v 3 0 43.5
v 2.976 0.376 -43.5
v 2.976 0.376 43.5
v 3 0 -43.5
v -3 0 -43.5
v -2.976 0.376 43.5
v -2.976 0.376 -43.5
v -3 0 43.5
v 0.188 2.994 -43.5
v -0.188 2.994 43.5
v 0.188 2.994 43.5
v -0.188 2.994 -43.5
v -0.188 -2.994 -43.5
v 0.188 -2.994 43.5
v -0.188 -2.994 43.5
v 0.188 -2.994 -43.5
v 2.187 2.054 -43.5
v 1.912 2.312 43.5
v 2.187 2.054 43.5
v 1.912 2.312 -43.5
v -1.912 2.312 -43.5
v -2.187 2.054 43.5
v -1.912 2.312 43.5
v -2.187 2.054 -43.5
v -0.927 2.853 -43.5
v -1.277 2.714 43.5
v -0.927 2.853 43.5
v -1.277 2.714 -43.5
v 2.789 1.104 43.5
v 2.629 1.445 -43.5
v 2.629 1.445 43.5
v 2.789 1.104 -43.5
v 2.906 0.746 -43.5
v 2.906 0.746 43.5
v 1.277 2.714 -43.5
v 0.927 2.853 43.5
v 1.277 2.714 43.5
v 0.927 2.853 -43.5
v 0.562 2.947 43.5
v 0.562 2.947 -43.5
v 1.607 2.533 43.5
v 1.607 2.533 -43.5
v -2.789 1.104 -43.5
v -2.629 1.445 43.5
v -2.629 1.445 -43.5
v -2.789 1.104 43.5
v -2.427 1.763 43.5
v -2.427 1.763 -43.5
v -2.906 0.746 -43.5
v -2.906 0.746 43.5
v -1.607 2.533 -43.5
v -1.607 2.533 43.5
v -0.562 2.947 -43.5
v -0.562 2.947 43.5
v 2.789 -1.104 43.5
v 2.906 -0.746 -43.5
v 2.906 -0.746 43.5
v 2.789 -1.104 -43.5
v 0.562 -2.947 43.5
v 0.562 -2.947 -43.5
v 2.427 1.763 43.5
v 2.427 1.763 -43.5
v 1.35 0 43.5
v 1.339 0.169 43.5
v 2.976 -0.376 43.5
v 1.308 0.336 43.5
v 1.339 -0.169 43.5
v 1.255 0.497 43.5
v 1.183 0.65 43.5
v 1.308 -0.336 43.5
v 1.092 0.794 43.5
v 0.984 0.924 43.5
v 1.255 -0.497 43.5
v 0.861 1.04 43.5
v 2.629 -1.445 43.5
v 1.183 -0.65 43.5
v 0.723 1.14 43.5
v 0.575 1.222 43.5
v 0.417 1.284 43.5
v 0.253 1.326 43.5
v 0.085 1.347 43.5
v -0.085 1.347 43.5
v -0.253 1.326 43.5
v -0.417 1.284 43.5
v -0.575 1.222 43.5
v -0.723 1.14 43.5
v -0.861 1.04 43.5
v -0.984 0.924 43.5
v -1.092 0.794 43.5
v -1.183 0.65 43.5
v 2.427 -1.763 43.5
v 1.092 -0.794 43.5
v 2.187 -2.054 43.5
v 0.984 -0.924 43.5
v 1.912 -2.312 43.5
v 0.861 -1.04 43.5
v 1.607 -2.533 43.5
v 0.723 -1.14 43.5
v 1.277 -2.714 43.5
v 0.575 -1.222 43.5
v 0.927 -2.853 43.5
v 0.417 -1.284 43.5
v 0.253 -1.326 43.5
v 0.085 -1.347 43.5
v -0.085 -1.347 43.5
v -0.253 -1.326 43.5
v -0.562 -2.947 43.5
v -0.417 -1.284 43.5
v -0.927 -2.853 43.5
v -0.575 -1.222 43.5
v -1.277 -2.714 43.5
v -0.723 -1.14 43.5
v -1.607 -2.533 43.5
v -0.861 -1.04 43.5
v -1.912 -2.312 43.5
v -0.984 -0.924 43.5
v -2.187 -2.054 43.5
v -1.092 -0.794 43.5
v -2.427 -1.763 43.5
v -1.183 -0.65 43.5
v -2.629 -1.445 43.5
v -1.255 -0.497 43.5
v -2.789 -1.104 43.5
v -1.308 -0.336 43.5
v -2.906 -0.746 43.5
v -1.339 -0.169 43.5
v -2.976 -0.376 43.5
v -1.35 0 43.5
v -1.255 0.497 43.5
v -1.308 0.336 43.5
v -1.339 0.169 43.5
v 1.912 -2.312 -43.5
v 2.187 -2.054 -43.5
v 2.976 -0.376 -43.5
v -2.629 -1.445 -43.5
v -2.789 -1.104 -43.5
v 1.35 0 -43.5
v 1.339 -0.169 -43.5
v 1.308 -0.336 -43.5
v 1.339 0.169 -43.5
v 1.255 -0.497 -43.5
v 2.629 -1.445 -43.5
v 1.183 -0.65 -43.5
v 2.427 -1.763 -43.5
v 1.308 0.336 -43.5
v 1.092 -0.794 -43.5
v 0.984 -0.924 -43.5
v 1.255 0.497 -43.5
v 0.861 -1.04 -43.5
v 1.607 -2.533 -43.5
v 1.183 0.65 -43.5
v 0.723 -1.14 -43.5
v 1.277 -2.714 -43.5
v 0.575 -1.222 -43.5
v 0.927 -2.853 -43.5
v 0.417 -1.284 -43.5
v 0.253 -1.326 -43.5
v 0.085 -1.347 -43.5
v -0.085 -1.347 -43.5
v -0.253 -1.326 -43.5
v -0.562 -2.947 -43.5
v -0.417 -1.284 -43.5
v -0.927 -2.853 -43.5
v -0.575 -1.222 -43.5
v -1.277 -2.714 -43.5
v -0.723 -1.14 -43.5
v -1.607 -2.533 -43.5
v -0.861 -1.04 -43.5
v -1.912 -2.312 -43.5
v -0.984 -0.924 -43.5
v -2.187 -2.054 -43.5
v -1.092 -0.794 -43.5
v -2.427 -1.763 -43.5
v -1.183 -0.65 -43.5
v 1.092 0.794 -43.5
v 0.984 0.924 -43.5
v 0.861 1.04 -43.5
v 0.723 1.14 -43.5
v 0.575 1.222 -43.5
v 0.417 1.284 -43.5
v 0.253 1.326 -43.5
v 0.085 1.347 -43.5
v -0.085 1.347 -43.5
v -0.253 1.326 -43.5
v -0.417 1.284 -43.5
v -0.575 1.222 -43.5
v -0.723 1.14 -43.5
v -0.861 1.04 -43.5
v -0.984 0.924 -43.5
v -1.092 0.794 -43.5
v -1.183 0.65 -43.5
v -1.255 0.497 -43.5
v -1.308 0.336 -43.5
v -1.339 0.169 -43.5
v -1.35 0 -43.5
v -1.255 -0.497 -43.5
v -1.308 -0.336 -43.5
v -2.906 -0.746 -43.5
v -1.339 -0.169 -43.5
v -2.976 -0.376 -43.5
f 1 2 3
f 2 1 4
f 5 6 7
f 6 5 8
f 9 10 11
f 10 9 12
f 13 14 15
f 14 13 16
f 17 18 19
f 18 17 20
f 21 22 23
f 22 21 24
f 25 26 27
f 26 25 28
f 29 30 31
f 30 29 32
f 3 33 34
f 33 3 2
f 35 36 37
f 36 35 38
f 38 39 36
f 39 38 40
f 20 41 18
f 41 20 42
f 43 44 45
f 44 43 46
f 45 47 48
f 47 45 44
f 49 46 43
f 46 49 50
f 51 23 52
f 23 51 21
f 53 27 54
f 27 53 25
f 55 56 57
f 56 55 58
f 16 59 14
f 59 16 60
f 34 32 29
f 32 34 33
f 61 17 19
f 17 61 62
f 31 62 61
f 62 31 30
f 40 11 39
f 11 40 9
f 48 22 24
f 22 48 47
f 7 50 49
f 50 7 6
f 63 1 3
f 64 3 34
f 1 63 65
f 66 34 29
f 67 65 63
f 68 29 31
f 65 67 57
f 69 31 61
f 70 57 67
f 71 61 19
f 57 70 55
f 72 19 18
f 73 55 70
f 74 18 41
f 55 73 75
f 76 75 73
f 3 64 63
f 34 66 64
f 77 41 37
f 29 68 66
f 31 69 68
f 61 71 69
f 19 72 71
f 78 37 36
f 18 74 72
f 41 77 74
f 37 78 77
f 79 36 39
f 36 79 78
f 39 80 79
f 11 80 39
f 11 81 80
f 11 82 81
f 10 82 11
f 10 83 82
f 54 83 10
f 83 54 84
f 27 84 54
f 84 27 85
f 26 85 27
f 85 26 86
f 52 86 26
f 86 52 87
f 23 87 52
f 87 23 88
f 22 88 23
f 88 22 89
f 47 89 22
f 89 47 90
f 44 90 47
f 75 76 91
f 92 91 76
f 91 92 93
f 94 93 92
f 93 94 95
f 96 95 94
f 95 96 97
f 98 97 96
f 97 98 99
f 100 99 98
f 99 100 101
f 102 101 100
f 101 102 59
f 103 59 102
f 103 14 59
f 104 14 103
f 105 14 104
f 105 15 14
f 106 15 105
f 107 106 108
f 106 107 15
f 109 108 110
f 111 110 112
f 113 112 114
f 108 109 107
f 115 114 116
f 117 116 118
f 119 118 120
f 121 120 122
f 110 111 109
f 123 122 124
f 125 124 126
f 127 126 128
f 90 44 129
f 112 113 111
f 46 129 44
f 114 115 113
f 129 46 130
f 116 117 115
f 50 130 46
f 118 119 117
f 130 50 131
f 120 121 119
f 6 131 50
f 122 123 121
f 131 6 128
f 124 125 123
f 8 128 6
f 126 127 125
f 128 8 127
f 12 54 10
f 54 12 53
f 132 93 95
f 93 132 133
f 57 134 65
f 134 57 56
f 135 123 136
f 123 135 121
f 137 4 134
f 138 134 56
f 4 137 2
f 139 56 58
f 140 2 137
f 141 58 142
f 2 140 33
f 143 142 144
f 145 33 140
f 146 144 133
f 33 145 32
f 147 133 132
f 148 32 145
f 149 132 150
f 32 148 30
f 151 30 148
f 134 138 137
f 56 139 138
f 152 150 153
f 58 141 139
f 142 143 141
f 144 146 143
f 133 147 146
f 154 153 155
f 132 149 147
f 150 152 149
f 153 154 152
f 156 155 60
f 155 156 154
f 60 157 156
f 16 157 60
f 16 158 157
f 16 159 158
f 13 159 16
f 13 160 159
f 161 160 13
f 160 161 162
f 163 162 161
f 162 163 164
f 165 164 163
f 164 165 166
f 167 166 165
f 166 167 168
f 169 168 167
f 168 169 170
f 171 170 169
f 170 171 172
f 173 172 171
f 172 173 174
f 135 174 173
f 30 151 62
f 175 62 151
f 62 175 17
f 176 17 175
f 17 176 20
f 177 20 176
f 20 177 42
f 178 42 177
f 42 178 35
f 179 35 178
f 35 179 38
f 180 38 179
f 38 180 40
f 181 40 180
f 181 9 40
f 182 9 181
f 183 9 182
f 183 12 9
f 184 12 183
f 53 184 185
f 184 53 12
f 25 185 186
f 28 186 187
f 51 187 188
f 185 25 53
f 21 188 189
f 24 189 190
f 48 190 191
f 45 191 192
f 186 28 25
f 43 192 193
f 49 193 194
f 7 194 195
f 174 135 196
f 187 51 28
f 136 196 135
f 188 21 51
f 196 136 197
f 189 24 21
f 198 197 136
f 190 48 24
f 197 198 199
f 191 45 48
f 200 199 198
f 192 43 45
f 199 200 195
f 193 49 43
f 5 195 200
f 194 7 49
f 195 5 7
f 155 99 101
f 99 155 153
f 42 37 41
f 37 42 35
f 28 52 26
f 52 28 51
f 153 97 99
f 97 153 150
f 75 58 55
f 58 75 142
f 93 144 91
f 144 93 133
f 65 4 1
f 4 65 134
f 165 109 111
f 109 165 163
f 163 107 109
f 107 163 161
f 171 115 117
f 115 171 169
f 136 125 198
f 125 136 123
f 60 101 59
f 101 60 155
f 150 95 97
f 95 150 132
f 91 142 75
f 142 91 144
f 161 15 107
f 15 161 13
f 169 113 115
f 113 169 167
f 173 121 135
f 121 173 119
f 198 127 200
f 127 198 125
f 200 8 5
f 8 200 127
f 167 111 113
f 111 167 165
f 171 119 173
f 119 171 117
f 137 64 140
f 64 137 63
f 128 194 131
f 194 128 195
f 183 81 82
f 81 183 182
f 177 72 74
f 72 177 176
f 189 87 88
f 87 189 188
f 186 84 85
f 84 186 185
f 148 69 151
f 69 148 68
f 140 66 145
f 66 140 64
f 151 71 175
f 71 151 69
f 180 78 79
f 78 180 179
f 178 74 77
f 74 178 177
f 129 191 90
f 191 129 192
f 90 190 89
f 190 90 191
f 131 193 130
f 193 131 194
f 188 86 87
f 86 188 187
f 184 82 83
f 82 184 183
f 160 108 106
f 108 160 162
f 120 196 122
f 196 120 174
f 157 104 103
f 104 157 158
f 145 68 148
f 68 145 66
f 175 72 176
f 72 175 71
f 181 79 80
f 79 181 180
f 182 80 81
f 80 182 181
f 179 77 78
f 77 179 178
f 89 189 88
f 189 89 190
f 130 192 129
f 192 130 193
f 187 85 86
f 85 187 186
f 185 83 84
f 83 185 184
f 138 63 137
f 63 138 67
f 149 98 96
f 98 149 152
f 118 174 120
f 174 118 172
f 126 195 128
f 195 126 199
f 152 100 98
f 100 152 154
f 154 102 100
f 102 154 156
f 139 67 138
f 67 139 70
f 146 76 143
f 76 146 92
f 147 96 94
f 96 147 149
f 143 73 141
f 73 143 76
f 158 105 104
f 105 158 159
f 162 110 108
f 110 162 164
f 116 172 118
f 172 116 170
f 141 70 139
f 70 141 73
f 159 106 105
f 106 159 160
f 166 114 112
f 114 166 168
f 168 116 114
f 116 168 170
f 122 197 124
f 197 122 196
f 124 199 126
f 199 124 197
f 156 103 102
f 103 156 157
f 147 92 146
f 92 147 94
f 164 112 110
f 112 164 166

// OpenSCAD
$fn = 50;


difference() {
	union() {
		translate(v = [0, 0, -43.5000000000]) {
			cylinder(h = 87, r = 3.0000000000);
		}
	}
	union() {
		translate(v = [0, 0, -100.0000000000]) {
			cylinder(h = 200, r = 1.3500000000);
		}
	}
}
